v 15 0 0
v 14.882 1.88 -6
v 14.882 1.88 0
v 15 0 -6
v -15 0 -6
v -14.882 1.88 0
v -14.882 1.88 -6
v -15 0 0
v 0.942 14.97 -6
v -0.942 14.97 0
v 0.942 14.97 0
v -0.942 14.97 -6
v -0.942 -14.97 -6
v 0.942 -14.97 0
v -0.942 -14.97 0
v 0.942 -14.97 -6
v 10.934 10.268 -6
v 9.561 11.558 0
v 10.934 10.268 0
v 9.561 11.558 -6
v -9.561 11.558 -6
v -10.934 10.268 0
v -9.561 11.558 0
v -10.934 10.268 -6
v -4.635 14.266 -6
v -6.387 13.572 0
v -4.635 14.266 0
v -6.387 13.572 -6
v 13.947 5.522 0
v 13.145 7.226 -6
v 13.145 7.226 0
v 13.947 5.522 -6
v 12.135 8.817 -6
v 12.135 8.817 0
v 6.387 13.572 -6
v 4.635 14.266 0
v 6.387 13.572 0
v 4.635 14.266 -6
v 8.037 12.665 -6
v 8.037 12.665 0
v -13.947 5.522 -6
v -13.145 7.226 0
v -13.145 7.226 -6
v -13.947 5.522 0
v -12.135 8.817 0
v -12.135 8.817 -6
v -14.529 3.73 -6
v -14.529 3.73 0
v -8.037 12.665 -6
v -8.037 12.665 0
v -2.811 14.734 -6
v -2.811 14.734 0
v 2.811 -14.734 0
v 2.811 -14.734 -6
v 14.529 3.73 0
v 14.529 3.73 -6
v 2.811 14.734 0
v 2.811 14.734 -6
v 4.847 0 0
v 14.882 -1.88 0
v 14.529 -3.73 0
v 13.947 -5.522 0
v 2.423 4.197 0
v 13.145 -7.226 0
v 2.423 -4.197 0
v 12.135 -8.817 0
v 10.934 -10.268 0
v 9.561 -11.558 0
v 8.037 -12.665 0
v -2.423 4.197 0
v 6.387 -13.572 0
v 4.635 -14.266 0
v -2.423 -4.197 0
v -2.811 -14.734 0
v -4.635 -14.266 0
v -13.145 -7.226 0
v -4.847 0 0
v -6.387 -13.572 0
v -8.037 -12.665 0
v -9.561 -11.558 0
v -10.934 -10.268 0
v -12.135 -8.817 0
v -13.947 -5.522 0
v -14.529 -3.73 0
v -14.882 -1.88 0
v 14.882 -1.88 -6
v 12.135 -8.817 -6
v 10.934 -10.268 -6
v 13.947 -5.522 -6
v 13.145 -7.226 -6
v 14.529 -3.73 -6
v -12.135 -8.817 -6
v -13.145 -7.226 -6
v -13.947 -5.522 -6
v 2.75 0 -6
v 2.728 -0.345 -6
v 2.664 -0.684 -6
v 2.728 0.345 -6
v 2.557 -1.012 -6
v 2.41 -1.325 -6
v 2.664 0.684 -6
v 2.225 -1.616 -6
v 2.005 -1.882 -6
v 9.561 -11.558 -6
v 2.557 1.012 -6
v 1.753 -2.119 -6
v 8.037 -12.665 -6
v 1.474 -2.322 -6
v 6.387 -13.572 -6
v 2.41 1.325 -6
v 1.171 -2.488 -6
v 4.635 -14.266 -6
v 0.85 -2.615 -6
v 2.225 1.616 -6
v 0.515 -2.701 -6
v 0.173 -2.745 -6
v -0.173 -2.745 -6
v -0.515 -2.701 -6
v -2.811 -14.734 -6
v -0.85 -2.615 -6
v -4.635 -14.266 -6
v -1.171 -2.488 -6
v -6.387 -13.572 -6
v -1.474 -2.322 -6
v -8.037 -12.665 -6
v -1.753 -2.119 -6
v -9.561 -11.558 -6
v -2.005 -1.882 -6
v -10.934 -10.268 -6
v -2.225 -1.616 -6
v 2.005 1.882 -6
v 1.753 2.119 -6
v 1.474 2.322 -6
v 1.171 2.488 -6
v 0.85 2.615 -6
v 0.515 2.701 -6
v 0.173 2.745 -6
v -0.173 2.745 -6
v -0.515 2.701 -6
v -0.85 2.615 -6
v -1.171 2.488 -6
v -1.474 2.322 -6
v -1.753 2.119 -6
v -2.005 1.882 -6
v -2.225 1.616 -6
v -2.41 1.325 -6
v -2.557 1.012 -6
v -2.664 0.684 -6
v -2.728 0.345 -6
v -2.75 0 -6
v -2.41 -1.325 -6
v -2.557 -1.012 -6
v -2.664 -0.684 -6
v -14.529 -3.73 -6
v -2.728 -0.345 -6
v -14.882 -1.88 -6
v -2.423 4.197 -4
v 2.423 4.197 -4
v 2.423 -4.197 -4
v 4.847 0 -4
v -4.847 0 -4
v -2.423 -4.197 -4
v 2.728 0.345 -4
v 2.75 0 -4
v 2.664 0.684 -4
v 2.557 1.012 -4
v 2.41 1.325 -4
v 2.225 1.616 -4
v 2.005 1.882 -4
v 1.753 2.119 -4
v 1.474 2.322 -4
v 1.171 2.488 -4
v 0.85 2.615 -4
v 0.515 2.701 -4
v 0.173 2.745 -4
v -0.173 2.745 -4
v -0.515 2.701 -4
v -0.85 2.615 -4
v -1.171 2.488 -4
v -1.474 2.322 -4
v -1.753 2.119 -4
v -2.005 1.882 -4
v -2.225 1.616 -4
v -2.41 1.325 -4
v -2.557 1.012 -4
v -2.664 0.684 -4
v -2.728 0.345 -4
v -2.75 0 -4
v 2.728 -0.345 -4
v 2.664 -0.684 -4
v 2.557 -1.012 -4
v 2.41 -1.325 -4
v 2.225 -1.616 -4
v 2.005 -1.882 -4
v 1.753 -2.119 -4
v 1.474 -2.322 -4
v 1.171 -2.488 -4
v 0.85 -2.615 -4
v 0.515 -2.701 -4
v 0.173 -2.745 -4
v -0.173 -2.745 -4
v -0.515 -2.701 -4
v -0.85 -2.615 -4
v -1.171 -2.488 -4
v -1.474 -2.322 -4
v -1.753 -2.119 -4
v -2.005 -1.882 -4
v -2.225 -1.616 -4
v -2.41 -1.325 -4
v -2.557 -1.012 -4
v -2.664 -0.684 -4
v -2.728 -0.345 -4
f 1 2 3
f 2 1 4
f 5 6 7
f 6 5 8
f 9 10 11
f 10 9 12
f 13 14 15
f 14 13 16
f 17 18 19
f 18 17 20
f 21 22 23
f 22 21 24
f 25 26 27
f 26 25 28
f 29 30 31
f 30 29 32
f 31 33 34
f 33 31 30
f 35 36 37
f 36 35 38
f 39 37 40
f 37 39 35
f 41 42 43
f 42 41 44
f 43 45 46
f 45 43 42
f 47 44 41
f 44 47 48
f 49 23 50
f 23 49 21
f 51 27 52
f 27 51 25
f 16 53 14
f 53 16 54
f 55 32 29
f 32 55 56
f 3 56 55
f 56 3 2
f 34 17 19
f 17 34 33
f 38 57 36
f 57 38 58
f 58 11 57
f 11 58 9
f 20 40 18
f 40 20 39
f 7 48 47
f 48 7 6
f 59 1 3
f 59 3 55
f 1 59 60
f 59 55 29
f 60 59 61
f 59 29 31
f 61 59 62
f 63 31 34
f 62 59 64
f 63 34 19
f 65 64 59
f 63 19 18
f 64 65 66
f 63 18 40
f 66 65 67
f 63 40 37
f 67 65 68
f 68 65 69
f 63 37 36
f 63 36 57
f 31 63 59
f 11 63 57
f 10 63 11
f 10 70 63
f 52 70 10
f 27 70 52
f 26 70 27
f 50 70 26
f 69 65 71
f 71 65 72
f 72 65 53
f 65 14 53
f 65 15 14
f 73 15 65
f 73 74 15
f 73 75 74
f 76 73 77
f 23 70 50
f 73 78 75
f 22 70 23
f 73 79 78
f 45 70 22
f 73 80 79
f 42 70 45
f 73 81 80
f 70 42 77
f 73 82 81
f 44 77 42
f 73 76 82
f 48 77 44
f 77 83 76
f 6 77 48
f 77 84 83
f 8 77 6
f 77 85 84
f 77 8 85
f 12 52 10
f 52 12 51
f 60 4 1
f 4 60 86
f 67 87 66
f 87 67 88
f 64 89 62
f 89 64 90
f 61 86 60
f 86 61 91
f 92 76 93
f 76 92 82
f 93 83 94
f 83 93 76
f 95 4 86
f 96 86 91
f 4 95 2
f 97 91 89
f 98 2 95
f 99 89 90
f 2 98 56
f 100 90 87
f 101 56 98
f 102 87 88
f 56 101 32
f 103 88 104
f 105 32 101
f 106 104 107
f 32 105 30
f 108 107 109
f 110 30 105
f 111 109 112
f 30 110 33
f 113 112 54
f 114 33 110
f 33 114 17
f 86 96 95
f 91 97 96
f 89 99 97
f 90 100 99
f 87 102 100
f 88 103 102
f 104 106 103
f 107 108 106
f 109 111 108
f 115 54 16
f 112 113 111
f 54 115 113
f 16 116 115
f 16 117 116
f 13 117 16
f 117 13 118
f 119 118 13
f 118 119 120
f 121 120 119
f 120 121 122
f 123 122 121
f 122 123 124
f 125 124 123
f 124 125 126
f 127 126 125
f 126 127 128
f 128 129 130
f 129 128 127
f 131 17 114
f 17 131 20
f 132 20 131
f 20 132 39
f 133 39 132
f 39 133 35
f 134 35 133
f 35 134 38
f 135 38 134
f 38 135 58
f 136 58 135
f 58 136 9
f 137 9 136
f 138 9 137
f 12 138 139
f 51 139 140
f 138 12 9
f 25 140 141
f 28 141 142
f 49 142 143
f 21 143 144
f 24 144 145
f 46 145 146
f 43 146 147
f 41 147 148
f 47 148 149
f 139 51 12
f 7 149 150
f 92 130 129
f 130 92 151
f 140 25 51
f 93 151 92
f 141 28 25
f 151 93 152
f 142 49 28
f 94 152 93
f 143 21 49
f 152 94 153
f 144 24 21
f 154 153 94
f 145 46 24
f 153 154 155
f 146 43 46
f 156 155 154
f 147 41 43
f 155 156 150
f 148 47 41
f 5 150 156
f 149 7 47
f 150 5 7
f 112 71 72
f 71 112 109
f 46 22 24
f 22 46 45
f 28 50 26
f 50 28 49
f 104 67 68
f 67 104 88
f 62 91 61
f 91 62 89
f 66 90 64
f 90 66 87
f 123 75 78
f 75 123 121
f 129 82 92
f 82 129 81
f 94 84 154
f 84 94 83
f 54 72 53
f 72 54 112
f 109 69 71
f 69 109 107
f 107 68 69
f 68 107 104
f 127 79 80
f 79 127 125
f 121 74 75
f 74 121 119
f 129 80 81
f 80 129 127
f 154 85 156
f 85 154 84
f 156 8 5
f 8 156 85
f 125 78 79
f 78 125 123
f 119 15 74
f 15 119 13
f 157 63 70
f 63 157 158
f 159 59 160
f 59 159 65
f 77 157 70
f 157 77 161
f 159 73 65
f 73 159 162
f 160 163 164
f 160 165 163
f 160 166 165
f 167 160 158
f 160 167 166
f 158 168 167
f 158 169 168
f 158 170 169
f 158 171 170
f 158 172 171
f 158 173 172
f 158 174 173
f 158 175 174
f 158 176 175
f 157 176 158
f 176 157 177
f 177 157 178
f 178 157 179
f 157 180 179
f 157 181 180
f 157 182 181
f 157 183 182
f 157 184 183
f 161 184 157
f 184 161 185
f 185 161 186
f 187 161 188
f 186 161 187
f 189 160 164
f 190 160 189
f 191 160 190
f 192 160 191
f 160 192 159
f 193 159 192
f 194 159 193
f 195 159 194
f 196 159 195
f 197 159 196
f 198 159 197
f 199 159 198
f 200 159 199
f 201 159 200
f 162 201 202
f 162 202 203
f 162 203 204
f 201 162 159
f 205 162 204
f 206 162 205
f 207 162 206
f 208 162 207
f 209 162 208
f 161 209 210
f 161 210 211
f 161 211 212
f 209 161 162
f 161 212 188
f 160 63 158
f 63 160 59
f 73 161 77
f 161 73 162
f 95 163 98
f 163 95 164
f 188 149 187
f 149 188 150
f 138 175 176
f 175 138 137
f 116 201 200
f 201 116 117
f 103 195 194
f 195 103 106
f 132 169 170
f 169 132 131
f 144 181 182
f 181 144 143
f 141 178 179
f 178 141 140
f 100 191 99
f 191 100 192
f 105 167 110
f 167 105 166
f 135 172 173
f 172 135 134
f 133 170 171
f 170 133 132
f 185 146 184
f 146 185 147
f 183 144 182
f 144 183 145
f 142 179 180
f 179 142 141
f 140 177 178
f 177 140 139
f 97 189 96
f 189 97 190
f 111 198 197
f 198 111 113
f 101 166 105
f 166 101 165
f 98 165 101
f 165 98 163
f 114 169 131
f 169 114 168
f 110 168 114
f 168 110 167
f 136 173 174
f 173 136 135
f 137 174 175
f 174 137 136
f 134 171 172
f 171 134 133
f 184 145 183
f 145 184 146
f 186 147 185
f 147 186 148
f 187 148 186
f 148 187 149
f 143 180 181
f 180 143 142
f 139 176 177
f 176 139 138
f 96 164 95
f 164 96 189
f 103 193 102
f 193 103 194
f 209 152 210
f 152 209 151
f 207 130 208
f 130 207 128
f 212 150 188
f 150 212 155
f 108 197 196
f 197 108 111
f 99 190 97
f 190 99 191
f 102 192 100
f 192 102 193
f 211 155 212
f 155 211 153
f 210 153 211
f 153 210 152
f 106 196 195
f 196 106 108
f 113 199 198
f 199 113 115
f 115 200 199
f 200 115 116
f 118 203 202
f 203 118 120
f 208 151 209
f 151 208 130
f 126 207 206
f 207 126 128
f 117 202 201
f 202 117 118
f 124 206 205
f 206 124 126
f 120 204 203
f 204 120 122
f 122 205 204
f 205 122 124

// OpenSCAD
$fn = 50;


difference() {
	union() {
		translate(v = [0, 0, -6.0000000000]) {
			cylinder(h = 6.0000000000, r = 15.0000000000);
		}
		translate(v = [0, 0, -4.5000000000]) {
			cylinder(h = 4.5000000000, r = 2.8750000000);
		}
	}
	union() {
		translate(v = [0, 0, 0]) {
			rotate(a = [0, 0, 0]) {
				difference() {
					union() {
						translate(v = [0, 0, -4]) {
							linear_extrude(height = 4) {
								polygon(points = [[4.8468000000, 0.0000000000], [2.4234000000, 4.1974519271], [-2.4234000000, 4.1974519271], [-4.8468000000, 0.0000000000], [-2.4234000000, -4.1974519271], [2.4234000000, -4.1974519271]]);
							}
						}
					}
					union();
				}
			}
		}
		#translate(v = [0, 0, -100.0000000000]) {
			cylinder(h = 200, r = 2.7500000000);
		}
	}
}
